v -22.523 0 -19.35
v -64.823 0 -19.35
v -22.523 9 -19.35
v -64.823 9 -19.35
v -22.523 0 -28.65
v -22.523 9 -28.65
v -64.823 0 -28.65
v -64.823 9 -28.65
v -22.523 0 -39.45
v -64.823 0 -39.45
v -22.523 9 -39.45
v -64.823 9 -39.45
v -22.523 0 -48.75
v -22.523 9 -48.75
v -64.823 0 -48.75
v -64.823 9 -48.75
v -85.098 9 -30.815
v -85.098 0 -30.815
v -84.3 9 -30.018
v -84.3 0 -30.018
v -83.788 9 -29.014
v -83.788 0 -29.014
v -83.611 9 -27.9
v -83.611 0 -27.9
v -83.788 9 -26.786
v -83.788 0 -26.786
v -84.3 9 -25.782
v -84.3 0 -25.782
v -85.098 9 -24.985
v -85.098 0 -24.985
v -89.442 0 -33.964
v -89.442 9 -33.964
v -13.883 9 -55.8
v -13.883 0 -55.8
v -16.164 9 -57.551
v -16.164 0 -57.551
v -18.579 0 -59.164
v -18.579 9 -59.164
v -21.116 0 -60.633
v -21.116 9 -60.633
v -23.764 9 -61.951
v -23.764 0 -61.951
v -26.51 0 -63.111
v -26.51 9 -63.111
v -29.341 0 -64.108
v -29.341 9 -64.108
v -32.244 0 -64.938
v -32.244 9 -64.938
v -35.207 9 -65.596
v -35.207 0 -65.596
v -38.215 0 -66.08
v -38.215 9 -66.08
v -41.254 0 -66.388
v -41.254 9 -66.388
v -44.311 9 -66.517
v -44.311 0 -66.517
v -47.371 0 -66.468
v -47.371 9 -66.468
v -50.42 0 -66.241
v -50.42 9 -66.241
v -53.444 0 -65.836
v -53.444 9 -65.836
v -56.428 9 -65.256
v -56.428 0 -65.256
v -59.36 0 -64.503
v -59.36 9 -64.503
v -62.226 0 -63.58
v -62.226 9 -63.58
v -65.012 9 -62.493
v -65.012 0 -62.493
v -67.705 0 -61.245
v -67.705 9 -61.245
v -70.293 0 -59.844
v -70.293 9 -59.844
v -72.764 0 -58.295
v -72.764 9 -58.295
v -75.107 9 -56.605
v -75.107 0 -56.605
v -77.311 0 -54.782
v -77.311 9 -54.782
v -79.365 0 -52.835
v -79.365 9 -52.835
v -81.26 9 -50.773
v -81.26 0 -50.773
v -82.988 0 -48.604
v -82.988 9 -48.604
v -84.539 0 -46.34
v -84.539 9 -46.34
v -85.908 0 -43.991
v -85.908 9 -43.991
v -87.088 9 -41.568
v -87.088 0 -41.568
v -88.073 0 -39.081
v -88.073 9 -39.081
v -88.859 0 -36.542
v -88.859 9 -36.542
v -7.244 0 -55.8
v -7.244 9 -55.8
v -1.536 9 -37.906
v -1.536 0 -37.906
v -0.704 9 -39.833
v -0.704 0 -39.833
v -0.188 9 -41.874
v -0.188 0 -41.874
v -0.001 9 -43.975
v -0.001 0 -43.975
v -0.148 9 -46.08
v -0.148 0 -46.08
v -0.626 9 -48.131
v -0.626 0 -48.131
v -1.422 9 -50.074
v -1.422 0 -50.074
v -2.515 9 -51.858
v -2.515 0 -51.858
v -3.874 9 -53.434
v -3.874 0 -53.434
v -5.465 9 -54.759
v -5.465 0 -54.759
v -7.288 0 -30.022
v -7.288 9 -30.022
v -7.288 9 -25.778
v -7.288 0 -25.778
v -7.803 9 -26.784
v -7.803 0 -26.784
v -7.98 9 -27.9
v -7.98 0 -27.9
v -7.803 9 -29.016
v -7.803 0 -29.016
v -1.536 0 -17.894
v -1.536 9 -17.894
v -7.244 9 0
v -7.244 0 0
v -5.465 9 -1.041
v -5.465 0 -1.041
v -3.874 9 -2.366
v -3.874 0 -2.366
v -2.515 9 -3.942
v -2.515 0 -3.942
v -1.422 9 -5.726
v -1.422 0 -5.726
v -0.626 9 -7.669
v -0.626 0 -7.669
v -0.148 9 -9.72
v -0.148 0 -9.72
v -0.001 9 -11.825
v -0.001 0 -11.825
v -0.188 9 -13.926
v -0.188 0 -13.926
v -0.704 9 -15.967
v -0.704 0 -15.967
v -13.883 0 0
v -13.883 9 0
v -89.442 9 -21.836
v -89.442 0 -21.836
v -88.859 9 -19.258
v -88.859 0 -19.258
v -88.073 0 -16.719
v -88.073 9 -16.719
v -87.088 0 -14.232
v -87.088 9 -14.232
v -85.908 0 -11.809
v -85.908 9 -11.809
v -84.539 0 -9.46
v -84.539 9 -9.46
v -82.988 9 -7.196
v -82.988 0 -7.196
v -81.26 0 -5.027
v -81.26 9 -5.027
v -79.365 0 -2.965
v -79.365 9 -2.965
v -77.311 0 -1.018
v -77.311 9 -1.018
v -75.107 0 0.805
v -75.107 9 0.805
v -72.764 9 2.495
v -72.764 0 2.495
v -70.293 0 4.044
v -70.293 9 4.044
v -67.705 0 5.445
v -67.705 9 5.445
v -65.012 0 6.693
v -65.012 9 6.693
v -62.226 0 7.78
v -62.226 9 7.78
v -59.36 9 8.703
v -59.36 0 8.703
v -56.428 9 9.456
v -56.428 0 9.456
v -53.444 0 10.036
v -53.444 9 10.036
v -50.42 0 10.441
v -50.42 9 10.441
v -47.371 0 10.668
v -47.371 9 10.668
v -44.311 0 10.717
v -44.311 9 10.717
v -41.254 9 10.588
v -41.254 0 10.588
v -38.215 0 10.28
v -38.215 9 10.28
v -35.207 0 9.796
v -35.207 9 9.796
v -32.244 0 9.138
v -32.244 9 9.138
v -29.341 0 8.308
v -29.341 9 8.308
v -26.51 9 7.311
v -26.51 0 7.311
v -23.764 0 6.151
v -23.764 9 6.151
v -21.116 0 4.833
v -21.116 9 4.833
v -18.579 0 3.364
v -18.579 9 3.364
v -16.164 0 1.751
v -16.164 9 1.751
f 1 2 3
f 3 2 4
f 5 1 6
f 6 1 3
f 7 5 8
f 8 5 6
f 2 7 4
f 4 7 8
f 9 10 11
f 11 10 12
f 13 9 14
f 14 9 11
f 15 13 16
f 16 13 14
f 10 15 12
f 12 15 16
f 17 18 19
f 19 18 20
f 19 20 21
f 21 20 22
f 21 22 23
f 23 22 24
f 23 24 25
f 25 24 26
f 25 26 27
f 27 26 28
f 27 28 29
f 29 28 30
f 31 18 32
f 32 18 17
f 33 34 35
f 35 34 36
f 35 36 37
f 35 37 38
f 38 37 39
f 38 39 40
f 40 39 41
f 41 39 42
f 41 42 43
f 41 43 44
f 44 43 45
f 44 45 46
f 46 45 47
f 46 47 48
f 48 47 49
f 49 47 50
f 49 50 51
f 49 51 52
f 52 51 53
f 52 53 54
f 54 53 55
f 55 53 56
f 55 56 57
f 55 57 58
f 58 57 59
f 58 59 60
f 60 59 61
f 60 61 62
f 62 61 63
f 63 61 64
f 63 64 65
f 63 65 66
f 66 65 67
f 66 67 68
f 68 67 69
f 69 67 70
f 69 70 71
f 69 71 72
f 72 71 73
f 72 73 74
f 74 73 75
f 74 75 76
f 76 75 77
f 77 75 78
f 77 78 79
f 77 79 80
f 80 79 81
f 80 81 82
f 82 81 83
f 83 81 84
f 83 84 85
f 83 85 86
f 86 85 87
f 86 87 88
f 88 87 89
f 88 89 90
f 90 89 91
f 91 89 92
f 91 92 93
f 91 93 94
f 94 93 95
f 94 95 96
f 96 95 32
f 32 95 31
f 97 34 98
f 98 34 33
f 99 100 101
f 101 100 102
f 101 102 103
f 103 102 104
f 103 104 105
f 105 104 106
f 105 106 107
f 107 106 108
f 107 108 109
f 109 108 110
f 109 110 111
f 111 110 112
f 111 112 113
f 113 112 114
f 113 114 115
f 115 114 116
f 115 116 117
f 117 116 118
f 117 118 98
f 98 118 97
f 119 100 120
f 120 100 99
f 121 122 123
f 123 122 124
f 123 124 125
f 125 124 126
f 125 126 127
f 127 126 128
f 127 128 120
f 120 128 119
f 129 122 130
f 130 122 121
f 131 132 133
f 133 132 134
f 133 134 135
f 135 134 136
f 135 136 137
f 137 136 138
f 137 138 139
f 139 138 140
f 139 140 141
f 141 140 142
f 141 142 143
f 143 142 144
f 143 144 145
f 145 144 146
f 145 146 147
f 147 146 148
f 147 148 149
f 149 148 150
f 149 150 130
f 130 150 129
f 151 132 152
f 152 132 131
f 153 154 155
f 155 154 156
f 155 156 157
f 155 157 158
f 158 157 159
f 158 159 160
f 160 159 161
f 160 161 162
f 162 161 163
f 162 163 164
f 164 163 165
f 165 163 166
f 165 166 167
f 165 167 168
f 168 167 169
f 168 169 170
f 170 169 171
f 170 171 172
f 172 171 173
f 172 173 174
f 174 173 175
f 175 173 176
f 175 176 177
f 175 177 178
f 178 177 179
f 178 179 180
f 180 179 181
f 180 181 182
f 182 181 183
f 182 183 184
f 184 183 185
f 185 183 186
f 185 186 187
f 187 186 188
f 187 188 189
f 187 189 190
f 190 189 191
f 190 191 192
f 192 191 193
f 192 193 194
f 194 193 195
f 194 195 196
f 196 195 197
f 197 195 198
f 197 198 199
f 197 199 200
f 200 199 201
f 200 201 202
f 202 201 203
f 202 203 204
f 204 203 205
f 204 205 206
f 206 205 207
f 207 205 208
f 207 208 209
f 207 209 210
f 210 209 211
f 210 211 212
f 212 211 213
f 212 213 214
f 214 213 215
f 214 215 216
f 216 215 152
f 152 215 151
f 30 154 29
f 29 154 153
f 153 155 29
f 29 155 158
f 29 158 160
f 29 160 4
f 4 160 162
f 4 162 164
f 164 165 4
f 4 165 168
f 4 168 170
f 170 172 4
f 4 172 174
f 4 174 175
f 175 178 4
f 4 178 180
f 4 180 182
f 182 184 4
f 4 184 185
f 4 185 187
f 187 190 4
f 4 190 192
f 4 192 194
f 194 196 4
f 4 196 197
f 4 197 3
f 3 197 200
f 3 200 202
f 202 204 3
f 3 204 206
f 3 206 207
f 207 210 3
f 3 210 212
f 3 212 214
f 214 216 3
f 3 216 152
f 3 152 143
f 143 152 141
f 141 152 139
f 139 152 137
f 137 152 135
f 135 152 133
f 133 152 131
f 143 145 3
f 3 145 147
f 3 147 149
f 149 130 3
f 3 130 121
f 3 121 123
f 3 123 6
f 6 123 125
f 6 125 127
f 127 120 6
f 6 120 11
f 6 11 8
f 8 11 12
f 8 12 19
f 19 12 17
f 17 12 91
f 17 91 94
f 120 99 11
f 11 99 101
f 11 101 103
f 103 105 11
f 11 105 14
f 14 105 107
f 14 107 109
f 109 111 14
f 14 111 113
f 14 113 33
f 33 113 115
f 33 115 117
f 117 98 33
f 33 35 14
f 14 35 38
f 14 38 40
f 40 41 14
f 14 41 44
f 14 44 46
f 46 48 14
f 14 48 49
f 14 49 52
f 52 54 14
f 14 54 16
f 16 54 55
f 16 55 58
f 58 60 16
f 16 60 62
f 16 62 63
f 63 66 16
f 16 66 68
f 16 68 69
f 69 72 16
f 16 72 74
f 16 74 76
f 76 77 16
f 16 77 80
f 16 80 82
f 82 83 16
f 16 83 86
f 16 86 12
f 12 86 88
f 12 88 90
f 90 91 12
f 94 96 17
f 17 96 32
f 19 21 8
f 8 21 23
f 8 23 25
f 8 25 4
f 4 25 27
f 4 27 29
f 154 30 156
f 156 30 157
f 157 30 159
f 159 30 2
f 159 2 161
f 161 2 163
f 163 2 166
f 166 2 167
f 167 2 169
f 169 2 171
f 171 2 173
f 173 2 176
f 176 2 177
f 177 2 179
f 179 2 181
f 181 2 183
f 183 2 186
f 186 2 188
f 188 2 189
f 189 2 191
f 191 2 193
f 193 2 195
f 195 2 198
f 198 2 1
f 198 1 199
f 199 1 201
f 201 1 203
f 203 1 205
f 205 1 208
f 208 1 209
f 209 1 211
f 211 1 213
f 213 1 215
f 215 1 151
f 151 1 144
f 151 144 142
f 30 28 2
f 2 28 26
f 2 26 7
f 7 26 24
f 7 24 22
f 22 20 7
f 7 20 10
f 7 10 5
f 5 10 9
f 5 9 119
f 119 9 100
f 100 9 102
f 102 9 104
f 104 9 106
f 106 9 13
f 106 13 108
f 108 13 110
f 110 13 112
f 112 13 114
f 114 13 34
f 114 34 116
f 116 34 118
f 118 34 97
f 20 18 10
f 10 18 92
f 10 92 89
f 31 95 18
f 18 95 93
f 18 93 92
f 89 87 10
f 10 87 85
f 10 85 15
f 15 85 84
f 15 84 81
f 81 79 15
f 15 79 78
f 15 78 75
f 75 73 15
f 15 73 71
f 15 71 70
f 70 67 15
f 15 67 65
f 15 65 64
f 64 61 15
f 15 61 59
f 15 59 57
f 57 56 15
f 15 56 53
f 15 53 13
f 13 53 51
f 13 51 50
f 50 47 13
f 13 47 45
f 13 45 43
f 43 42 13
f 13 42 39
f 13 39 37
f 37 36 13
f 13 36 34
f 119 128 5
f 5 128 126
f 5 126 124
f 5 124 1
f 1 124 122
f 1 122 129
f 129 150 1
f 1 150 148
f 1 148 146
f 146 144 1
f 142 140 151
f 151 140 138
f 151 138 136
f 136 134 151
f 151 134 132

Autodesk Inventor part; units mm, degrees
ref_plane "YZ Plane" through (0, 0, 0) normal (1, 0, 0) x (0, 1, 0)
ref_plane "XZ Plane" through (0, 0, 0) normal (0, 1, 0) x (-1, 0, 0)
ref_plane "XY Plane" through (0, 0, 0) normal (0, 0, 1) x (1, 0, 0)
sketch "Sketch1" plane through (0, 0, 0) normal (0, 1, 0) x (-1, 0, 0)
  line L0 (0, 0) -> (90, 0)
  line L1 (90, 0) -> (90, -55.8)
  line L2 (90, -55.8) -> (0, -55.8)
  line L3 (0, -55.8) -> (0, 0)
  ellipse E0 centre (45, -27.9) end of major axis (0, -27.9) minor radius 38.6219 (13.883, -55.8) -> (13.883, 0) ccw
  line L4 (64.8234, -39.45) -> (22.5234, -39.45)
  line L5 (22.5234, -39.45) -> (22.5234, -48.75)
  line L6 (22.5234, -48.75) -> (64.8234, -48.75)
  line L7 (64.8234, -48.75) -> (64.8234, -39.45)
  line L8 (64.8234, -19.35) -> (22.5234, -19.35)
  line L9 (22.5234, -19.35) -> (22.5234, -28.65)
  line L10 (22.5234, -28.65) -> (64.8234, -28.65)
  line L11 (64.8234, -28.65) -> (64.8234, -19.35)
  line L12 (90, -27.9) -> (0, -27.9)
  ellipse E1 centre (12.4971, -44.1) end of major axis (0, -44.1) minor radius 12.8946 (3.6964, -34.945) -> (15.0472, -56.7233) ccw
  line L13 (1.5364, -17.8943) -> (7.2883, -25.7782)
  line L14 (1.5364, -37.9057) -> (7.2883, -30.0218)
  arc A0 (7.2883, -30.0218) -> (7.2883, -25.7782) centre (4.38, -27.9) ccw
  line L15 (85.0982, -24.9854) -> (89.4419, -21.8362)
  line L16 (85.0982, -30.8146) -> (89.4419, -33.9638)
  arc A1 (85.0982, -24.9854) -> (85.0982, -30.8146) centre (87.2113, -27.9) ccw
  ellipse E2 centre (12.4971, -11.7) end of major axis (0, -11.7) minor radius 12.8946 (15.0472, 0.9233) -> (3.6964, -20.855) ccw
  ellipse E3 centre (12.4971, -11.7) end of major axis (0, -11.7) minor radius 12.8946 (22.5234, -19.3972) -> (22.5573, -19.35) ccw
  point P0 (8.8363, -27.9)
  point P1 (81.0782, -27.9)
  point P2 (7.2438, 0)
  point P3 (7.2438, -55.8)
  dimension "d0" = 90
  dimension "d1" = 55.8
  dimension "d3" = 9.3
  dimension "d4" = 9.3
  dimension "d5" = 7.05
  dimension "d6" = 10.8
  dimension "d7" = 3.6
  dimension "d8" = 3.6
extrude "Extrusion1" add sketch "Sketch1" along normal blind 9 contours L0 E0 L15 A1 L12 L11 L8 L9 A0 L13 E2 | E0 L0 | E1 L14 A0 L12 L9 L10 L11 A1 L16 E0 L2 | L2 E0
properties part number "telapak kaki"
